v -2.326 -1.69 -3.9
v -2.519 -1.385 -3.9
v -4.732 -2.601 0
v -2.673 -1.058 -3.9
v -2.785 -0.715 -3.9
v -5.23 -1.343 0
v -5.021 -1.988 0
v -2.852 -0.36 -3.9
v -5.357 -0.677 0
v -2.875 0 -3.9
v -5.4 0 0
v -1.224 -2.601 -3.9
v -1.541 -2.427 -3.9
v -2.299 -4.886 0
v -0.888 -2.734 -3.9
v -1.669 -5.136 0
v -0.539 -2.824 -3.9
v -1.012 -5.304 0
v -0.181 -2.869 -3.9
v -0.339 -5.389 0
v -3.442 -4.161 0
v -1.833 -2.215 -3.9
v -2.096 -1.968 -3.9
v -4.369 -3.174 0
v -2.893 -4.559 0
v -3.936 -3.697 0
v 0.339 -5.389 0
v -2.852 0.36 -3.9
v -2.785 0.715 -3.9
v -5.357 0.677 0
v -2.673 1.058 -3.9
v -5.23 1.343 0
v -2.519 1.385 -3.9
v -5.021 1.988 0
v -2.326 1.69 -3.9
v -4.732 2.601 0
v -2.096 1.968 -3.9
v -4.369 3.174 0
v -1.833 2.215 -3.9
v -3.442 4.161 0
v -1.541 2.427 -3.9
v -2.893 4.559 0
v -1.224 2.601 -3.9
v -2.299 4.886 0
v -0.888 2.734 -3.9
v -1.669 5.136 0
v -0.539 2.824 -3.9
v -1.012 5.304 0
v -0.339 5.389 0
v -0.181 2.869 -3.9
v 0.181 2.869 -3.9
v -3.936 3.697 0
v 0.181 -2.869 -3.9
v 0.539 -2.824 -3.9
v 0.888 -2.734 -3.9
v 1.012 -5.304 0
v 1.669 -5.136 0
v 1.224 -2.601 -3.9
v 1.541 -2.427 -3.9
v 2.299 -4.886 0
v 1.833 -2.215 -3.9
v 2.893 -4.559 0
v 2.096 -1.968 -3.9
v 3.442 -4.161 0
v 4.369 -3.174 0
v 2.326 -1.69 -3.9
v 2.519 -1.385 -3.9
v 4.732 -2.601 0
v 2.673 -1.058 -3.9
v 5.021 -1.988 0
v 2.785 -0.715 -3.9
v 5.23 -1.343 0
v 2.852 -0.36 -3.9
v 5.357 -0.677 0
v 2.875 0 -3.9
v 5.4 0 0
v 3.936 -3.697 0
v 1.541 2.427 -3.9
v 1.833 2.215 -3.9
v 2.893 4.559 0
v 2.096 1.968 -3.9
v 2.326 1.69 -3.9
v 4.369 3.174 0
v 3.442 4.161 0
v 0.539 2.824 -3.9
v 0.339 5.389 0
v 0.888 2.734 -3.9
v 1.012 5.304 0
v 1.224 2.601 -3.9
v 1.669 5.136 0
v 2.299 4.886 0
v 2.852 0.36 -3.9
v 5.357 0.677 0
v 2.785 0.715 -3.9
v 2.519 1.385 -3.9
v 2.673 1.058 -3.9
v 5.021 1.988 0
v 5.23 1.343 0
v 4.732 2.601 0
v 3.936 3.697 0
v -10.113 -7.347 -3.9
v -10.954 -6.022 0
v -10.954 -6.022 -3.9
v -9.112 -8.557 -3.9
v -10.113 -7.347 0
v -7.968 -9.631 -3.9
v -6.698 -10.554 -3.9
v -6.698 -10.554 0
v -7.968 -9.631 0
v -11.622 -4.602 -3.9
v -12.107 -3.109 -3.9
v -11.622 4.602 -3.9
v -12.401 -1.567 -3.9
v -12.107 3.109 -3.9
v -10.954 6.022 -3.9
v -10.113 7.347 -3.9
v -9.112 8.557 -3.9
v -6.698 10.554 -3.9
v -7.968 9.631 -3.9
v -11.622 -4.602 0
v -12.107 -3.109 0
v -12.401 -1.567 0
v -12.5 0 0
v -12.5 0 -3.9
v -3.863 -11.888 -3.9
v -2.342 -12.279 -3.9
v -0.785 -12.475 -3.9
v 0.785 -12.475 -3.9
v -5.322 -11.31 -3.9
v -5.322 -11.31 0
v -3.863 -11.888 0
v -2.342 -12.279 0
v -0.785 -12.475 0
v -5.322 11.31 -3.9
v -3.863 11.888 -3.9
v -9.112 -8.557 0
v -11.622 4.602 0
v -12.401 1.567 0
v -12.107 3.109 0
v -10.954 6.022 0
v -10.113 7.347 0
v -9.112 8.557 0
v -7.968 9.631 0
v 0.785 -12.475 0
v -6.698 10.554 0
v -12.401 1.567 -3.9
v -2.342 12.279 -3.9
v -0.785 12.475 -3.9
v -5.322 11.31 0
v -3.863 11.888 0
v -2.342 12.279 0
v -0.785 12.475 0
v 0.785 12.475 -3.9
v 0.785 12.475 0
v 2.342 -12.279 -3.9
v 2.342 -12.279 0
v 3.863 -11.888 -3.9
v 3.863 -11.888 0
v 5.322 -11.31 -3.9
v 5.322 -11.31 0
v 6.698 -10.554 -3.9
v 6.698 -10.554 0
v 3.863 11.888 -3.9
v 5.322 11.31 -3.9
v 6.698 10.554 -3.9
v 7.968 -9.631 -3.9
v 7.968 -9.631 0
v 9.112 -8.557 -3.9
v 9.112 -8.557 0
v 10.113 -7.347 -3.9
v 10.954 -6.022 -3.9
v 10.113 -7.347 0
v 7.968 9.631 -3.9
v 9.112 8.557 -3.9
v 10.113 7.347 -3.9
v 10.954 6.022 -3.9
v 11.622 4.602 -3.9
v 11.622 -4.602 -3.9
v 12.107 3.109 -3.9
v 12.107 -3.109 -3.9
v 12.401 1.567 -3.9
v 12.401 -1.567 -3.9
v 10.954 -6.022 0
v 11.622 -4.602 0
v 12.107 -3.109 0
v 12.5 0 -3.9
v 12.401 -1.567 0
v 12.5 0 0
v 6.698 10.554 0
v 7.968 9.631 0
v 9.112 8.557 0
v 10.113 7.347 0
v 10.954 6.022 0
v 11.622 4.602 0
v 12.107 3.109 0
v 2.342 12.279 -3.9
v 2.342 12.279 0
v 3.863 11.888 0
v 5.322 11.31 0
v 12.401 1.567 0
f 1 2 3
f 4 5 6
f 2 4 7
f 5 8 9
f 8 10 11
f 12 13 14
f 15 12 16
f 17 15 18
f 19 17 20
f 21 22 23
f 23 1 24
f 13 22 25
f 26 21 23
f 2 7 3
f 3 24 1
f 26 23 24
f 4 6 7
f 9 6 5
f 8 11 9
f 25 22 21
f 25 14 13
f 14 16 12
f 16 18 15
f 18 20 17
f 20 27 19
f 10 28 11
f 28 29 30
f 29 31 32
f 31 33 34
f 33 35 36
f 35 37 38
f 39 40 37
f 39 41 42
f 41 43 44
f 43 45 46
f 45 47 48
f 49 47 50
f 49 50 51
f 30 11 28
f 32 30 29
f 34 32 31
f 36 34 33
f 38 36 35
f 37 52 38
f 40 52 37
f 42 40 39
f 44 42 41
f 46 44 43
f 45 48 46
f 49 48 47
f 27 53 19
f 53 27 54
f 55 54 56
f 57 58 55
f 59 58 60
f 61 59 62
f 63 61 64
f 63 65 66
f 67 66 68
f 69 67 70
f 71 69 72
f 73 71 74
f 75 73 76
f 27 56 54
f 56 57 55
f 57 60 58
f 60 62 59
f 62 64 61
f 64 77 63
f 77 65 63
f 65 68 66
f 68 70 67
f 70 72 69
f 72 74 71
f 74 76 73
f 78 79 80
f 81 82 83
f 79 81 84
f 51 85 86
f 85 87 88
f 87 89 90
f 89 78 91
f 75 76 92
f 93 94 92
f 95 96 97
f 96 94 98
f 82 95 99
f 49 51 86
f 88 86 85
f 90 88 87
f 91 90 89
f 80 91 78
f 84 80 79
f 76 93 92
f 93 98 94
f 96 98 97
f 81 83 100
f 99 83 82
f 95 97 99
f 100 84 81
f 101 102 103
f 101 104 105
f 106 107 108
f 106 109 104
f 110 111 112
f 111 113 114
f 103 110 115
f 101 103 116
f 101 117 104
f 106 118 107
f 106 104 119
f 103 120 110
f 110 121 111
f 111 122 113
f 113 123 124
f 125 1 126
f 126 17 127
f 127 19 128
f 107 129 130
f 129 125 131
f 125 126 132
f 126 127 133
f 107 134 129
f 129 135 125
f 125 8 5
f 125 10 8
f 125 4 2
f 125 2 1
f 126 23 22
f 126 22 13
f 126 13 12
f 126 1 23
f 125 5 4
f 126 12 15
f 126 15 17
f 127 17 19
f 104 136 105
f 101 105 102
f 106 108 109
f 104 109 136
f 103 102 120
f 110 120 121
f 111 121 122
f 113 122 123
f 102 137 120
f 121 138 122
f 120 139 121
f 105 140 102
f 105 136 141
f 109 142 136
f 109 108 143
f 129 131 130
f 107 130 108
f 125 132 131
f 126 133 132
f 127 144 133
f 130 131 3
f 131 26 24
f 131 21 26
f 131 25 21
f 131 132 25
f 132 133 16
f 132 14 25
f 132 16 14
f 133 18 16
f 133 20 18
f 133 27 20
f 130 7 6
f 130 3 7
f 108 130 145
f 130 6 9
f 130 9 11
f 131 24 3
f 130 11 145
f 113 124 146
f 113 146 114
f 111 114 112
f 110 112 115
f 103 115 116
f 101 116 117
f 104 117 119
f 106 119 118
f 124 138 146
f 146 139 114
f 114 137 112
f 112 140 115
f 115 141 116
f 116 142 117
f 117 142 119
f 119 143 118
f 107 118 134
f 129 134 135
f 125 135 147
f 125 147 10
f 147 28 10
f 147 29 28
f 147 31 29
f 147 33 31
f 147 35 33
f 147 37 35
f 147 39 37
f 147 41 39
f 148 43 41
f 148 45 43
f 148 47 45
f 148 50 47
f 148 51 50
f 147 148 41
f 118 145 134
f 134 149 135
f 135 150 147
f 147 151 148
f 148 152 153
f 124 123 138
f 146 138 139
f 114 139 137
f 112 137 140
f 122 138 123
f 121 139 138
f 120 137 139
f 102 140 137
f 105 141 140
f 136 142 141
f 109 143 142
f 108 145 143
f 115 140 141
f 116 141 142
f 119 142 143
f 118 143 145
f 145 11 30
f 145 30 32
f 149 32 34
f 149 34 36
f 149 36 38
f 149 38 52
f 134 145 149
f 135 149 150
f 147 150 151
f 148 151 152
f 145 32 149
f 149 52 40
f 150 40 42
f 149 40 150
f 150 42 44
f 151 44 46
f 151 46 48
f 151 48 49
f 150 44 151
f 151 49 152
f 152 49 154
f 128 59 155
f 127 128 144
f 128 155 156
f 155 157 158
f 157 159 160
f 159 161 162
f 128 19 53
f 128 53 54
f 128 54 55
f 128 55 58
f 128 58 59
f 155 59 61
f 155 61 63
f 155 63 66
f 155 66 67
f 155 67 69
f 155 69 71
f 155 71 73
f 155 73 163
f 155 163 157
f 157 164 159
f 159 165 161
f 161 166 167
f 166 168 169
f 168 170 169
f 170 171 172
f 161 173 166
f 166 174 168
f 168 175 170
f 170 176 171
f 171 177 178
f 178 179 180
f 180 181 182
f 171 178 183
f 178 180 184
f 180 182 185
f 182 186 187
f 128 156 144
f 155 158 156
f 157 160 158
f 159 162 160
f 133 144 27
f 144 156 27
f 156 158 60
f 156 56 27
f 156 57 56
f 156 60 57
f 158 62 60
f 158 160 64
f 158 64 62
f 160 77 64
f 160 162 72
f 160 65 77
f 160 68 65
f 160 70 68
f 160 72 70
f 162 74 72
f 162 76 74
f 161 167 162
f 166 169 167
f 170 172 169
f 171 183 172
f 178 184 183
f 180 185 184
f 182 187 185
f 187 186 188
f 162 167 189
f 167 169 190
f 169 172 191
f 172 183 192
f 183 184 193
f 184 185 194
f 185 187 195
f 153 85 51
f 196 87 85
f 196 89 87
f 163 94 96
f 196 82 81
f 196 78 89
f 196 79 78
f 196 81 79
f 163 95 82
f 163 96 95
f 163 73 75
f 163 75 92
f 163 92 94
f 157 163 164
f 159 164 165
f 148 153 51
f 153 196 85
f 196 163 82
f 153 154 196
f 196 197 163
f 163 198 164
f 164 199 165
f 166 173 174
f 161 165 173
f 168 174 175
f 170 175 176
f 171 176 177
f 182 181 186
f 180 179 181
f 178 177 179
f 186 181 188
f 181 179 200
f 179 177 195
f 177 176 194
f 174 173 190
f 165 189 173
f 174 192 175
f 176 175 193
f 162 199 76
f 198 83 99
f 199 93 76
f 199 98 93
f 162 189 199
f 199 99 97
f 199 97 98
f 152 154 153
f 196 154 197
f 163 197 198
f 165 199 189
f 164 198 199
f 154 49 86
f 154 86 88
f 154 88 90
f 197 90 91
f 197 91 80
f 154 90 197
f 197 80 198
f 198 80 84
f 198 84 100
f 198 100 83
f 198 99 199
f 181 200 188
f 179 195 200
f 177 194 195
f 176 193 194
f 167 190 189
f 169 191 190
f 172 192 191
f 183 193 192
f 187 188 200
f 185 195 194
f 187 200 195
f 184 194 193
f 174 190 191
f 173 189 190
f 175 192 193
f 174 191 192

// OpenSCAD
$fn = 50;

difference() {
	union() {
		translate(v = [0, 0, -3.9]) {
			cylinder(h = 3.9, r = 12.5);
		}
	}
	union() {
		translate(v = [0, 0, 0]) {
			rotate(a = [0, 0, 0]) {
				difference() {
					union() {
						translate(v = [0, 0, -6.9]) {
							cylinder(h = 6.9, r = 2.6);
						}
						translate(v = [0, 0, -3.9]) {
							cylinder(h = 3.9, r1 = 2.875, r2 = 5.4);
						}
						translate(v = [0, 0, -6.9]) {
							cylinder(h = 6.9, r = 2.875);
						}
						translate(v = [0, 0, -6.9]) {
							cylinder(h = 6.9, r = 2.6);
						}
					}
					union();
				}
			}
		}
	}
}
